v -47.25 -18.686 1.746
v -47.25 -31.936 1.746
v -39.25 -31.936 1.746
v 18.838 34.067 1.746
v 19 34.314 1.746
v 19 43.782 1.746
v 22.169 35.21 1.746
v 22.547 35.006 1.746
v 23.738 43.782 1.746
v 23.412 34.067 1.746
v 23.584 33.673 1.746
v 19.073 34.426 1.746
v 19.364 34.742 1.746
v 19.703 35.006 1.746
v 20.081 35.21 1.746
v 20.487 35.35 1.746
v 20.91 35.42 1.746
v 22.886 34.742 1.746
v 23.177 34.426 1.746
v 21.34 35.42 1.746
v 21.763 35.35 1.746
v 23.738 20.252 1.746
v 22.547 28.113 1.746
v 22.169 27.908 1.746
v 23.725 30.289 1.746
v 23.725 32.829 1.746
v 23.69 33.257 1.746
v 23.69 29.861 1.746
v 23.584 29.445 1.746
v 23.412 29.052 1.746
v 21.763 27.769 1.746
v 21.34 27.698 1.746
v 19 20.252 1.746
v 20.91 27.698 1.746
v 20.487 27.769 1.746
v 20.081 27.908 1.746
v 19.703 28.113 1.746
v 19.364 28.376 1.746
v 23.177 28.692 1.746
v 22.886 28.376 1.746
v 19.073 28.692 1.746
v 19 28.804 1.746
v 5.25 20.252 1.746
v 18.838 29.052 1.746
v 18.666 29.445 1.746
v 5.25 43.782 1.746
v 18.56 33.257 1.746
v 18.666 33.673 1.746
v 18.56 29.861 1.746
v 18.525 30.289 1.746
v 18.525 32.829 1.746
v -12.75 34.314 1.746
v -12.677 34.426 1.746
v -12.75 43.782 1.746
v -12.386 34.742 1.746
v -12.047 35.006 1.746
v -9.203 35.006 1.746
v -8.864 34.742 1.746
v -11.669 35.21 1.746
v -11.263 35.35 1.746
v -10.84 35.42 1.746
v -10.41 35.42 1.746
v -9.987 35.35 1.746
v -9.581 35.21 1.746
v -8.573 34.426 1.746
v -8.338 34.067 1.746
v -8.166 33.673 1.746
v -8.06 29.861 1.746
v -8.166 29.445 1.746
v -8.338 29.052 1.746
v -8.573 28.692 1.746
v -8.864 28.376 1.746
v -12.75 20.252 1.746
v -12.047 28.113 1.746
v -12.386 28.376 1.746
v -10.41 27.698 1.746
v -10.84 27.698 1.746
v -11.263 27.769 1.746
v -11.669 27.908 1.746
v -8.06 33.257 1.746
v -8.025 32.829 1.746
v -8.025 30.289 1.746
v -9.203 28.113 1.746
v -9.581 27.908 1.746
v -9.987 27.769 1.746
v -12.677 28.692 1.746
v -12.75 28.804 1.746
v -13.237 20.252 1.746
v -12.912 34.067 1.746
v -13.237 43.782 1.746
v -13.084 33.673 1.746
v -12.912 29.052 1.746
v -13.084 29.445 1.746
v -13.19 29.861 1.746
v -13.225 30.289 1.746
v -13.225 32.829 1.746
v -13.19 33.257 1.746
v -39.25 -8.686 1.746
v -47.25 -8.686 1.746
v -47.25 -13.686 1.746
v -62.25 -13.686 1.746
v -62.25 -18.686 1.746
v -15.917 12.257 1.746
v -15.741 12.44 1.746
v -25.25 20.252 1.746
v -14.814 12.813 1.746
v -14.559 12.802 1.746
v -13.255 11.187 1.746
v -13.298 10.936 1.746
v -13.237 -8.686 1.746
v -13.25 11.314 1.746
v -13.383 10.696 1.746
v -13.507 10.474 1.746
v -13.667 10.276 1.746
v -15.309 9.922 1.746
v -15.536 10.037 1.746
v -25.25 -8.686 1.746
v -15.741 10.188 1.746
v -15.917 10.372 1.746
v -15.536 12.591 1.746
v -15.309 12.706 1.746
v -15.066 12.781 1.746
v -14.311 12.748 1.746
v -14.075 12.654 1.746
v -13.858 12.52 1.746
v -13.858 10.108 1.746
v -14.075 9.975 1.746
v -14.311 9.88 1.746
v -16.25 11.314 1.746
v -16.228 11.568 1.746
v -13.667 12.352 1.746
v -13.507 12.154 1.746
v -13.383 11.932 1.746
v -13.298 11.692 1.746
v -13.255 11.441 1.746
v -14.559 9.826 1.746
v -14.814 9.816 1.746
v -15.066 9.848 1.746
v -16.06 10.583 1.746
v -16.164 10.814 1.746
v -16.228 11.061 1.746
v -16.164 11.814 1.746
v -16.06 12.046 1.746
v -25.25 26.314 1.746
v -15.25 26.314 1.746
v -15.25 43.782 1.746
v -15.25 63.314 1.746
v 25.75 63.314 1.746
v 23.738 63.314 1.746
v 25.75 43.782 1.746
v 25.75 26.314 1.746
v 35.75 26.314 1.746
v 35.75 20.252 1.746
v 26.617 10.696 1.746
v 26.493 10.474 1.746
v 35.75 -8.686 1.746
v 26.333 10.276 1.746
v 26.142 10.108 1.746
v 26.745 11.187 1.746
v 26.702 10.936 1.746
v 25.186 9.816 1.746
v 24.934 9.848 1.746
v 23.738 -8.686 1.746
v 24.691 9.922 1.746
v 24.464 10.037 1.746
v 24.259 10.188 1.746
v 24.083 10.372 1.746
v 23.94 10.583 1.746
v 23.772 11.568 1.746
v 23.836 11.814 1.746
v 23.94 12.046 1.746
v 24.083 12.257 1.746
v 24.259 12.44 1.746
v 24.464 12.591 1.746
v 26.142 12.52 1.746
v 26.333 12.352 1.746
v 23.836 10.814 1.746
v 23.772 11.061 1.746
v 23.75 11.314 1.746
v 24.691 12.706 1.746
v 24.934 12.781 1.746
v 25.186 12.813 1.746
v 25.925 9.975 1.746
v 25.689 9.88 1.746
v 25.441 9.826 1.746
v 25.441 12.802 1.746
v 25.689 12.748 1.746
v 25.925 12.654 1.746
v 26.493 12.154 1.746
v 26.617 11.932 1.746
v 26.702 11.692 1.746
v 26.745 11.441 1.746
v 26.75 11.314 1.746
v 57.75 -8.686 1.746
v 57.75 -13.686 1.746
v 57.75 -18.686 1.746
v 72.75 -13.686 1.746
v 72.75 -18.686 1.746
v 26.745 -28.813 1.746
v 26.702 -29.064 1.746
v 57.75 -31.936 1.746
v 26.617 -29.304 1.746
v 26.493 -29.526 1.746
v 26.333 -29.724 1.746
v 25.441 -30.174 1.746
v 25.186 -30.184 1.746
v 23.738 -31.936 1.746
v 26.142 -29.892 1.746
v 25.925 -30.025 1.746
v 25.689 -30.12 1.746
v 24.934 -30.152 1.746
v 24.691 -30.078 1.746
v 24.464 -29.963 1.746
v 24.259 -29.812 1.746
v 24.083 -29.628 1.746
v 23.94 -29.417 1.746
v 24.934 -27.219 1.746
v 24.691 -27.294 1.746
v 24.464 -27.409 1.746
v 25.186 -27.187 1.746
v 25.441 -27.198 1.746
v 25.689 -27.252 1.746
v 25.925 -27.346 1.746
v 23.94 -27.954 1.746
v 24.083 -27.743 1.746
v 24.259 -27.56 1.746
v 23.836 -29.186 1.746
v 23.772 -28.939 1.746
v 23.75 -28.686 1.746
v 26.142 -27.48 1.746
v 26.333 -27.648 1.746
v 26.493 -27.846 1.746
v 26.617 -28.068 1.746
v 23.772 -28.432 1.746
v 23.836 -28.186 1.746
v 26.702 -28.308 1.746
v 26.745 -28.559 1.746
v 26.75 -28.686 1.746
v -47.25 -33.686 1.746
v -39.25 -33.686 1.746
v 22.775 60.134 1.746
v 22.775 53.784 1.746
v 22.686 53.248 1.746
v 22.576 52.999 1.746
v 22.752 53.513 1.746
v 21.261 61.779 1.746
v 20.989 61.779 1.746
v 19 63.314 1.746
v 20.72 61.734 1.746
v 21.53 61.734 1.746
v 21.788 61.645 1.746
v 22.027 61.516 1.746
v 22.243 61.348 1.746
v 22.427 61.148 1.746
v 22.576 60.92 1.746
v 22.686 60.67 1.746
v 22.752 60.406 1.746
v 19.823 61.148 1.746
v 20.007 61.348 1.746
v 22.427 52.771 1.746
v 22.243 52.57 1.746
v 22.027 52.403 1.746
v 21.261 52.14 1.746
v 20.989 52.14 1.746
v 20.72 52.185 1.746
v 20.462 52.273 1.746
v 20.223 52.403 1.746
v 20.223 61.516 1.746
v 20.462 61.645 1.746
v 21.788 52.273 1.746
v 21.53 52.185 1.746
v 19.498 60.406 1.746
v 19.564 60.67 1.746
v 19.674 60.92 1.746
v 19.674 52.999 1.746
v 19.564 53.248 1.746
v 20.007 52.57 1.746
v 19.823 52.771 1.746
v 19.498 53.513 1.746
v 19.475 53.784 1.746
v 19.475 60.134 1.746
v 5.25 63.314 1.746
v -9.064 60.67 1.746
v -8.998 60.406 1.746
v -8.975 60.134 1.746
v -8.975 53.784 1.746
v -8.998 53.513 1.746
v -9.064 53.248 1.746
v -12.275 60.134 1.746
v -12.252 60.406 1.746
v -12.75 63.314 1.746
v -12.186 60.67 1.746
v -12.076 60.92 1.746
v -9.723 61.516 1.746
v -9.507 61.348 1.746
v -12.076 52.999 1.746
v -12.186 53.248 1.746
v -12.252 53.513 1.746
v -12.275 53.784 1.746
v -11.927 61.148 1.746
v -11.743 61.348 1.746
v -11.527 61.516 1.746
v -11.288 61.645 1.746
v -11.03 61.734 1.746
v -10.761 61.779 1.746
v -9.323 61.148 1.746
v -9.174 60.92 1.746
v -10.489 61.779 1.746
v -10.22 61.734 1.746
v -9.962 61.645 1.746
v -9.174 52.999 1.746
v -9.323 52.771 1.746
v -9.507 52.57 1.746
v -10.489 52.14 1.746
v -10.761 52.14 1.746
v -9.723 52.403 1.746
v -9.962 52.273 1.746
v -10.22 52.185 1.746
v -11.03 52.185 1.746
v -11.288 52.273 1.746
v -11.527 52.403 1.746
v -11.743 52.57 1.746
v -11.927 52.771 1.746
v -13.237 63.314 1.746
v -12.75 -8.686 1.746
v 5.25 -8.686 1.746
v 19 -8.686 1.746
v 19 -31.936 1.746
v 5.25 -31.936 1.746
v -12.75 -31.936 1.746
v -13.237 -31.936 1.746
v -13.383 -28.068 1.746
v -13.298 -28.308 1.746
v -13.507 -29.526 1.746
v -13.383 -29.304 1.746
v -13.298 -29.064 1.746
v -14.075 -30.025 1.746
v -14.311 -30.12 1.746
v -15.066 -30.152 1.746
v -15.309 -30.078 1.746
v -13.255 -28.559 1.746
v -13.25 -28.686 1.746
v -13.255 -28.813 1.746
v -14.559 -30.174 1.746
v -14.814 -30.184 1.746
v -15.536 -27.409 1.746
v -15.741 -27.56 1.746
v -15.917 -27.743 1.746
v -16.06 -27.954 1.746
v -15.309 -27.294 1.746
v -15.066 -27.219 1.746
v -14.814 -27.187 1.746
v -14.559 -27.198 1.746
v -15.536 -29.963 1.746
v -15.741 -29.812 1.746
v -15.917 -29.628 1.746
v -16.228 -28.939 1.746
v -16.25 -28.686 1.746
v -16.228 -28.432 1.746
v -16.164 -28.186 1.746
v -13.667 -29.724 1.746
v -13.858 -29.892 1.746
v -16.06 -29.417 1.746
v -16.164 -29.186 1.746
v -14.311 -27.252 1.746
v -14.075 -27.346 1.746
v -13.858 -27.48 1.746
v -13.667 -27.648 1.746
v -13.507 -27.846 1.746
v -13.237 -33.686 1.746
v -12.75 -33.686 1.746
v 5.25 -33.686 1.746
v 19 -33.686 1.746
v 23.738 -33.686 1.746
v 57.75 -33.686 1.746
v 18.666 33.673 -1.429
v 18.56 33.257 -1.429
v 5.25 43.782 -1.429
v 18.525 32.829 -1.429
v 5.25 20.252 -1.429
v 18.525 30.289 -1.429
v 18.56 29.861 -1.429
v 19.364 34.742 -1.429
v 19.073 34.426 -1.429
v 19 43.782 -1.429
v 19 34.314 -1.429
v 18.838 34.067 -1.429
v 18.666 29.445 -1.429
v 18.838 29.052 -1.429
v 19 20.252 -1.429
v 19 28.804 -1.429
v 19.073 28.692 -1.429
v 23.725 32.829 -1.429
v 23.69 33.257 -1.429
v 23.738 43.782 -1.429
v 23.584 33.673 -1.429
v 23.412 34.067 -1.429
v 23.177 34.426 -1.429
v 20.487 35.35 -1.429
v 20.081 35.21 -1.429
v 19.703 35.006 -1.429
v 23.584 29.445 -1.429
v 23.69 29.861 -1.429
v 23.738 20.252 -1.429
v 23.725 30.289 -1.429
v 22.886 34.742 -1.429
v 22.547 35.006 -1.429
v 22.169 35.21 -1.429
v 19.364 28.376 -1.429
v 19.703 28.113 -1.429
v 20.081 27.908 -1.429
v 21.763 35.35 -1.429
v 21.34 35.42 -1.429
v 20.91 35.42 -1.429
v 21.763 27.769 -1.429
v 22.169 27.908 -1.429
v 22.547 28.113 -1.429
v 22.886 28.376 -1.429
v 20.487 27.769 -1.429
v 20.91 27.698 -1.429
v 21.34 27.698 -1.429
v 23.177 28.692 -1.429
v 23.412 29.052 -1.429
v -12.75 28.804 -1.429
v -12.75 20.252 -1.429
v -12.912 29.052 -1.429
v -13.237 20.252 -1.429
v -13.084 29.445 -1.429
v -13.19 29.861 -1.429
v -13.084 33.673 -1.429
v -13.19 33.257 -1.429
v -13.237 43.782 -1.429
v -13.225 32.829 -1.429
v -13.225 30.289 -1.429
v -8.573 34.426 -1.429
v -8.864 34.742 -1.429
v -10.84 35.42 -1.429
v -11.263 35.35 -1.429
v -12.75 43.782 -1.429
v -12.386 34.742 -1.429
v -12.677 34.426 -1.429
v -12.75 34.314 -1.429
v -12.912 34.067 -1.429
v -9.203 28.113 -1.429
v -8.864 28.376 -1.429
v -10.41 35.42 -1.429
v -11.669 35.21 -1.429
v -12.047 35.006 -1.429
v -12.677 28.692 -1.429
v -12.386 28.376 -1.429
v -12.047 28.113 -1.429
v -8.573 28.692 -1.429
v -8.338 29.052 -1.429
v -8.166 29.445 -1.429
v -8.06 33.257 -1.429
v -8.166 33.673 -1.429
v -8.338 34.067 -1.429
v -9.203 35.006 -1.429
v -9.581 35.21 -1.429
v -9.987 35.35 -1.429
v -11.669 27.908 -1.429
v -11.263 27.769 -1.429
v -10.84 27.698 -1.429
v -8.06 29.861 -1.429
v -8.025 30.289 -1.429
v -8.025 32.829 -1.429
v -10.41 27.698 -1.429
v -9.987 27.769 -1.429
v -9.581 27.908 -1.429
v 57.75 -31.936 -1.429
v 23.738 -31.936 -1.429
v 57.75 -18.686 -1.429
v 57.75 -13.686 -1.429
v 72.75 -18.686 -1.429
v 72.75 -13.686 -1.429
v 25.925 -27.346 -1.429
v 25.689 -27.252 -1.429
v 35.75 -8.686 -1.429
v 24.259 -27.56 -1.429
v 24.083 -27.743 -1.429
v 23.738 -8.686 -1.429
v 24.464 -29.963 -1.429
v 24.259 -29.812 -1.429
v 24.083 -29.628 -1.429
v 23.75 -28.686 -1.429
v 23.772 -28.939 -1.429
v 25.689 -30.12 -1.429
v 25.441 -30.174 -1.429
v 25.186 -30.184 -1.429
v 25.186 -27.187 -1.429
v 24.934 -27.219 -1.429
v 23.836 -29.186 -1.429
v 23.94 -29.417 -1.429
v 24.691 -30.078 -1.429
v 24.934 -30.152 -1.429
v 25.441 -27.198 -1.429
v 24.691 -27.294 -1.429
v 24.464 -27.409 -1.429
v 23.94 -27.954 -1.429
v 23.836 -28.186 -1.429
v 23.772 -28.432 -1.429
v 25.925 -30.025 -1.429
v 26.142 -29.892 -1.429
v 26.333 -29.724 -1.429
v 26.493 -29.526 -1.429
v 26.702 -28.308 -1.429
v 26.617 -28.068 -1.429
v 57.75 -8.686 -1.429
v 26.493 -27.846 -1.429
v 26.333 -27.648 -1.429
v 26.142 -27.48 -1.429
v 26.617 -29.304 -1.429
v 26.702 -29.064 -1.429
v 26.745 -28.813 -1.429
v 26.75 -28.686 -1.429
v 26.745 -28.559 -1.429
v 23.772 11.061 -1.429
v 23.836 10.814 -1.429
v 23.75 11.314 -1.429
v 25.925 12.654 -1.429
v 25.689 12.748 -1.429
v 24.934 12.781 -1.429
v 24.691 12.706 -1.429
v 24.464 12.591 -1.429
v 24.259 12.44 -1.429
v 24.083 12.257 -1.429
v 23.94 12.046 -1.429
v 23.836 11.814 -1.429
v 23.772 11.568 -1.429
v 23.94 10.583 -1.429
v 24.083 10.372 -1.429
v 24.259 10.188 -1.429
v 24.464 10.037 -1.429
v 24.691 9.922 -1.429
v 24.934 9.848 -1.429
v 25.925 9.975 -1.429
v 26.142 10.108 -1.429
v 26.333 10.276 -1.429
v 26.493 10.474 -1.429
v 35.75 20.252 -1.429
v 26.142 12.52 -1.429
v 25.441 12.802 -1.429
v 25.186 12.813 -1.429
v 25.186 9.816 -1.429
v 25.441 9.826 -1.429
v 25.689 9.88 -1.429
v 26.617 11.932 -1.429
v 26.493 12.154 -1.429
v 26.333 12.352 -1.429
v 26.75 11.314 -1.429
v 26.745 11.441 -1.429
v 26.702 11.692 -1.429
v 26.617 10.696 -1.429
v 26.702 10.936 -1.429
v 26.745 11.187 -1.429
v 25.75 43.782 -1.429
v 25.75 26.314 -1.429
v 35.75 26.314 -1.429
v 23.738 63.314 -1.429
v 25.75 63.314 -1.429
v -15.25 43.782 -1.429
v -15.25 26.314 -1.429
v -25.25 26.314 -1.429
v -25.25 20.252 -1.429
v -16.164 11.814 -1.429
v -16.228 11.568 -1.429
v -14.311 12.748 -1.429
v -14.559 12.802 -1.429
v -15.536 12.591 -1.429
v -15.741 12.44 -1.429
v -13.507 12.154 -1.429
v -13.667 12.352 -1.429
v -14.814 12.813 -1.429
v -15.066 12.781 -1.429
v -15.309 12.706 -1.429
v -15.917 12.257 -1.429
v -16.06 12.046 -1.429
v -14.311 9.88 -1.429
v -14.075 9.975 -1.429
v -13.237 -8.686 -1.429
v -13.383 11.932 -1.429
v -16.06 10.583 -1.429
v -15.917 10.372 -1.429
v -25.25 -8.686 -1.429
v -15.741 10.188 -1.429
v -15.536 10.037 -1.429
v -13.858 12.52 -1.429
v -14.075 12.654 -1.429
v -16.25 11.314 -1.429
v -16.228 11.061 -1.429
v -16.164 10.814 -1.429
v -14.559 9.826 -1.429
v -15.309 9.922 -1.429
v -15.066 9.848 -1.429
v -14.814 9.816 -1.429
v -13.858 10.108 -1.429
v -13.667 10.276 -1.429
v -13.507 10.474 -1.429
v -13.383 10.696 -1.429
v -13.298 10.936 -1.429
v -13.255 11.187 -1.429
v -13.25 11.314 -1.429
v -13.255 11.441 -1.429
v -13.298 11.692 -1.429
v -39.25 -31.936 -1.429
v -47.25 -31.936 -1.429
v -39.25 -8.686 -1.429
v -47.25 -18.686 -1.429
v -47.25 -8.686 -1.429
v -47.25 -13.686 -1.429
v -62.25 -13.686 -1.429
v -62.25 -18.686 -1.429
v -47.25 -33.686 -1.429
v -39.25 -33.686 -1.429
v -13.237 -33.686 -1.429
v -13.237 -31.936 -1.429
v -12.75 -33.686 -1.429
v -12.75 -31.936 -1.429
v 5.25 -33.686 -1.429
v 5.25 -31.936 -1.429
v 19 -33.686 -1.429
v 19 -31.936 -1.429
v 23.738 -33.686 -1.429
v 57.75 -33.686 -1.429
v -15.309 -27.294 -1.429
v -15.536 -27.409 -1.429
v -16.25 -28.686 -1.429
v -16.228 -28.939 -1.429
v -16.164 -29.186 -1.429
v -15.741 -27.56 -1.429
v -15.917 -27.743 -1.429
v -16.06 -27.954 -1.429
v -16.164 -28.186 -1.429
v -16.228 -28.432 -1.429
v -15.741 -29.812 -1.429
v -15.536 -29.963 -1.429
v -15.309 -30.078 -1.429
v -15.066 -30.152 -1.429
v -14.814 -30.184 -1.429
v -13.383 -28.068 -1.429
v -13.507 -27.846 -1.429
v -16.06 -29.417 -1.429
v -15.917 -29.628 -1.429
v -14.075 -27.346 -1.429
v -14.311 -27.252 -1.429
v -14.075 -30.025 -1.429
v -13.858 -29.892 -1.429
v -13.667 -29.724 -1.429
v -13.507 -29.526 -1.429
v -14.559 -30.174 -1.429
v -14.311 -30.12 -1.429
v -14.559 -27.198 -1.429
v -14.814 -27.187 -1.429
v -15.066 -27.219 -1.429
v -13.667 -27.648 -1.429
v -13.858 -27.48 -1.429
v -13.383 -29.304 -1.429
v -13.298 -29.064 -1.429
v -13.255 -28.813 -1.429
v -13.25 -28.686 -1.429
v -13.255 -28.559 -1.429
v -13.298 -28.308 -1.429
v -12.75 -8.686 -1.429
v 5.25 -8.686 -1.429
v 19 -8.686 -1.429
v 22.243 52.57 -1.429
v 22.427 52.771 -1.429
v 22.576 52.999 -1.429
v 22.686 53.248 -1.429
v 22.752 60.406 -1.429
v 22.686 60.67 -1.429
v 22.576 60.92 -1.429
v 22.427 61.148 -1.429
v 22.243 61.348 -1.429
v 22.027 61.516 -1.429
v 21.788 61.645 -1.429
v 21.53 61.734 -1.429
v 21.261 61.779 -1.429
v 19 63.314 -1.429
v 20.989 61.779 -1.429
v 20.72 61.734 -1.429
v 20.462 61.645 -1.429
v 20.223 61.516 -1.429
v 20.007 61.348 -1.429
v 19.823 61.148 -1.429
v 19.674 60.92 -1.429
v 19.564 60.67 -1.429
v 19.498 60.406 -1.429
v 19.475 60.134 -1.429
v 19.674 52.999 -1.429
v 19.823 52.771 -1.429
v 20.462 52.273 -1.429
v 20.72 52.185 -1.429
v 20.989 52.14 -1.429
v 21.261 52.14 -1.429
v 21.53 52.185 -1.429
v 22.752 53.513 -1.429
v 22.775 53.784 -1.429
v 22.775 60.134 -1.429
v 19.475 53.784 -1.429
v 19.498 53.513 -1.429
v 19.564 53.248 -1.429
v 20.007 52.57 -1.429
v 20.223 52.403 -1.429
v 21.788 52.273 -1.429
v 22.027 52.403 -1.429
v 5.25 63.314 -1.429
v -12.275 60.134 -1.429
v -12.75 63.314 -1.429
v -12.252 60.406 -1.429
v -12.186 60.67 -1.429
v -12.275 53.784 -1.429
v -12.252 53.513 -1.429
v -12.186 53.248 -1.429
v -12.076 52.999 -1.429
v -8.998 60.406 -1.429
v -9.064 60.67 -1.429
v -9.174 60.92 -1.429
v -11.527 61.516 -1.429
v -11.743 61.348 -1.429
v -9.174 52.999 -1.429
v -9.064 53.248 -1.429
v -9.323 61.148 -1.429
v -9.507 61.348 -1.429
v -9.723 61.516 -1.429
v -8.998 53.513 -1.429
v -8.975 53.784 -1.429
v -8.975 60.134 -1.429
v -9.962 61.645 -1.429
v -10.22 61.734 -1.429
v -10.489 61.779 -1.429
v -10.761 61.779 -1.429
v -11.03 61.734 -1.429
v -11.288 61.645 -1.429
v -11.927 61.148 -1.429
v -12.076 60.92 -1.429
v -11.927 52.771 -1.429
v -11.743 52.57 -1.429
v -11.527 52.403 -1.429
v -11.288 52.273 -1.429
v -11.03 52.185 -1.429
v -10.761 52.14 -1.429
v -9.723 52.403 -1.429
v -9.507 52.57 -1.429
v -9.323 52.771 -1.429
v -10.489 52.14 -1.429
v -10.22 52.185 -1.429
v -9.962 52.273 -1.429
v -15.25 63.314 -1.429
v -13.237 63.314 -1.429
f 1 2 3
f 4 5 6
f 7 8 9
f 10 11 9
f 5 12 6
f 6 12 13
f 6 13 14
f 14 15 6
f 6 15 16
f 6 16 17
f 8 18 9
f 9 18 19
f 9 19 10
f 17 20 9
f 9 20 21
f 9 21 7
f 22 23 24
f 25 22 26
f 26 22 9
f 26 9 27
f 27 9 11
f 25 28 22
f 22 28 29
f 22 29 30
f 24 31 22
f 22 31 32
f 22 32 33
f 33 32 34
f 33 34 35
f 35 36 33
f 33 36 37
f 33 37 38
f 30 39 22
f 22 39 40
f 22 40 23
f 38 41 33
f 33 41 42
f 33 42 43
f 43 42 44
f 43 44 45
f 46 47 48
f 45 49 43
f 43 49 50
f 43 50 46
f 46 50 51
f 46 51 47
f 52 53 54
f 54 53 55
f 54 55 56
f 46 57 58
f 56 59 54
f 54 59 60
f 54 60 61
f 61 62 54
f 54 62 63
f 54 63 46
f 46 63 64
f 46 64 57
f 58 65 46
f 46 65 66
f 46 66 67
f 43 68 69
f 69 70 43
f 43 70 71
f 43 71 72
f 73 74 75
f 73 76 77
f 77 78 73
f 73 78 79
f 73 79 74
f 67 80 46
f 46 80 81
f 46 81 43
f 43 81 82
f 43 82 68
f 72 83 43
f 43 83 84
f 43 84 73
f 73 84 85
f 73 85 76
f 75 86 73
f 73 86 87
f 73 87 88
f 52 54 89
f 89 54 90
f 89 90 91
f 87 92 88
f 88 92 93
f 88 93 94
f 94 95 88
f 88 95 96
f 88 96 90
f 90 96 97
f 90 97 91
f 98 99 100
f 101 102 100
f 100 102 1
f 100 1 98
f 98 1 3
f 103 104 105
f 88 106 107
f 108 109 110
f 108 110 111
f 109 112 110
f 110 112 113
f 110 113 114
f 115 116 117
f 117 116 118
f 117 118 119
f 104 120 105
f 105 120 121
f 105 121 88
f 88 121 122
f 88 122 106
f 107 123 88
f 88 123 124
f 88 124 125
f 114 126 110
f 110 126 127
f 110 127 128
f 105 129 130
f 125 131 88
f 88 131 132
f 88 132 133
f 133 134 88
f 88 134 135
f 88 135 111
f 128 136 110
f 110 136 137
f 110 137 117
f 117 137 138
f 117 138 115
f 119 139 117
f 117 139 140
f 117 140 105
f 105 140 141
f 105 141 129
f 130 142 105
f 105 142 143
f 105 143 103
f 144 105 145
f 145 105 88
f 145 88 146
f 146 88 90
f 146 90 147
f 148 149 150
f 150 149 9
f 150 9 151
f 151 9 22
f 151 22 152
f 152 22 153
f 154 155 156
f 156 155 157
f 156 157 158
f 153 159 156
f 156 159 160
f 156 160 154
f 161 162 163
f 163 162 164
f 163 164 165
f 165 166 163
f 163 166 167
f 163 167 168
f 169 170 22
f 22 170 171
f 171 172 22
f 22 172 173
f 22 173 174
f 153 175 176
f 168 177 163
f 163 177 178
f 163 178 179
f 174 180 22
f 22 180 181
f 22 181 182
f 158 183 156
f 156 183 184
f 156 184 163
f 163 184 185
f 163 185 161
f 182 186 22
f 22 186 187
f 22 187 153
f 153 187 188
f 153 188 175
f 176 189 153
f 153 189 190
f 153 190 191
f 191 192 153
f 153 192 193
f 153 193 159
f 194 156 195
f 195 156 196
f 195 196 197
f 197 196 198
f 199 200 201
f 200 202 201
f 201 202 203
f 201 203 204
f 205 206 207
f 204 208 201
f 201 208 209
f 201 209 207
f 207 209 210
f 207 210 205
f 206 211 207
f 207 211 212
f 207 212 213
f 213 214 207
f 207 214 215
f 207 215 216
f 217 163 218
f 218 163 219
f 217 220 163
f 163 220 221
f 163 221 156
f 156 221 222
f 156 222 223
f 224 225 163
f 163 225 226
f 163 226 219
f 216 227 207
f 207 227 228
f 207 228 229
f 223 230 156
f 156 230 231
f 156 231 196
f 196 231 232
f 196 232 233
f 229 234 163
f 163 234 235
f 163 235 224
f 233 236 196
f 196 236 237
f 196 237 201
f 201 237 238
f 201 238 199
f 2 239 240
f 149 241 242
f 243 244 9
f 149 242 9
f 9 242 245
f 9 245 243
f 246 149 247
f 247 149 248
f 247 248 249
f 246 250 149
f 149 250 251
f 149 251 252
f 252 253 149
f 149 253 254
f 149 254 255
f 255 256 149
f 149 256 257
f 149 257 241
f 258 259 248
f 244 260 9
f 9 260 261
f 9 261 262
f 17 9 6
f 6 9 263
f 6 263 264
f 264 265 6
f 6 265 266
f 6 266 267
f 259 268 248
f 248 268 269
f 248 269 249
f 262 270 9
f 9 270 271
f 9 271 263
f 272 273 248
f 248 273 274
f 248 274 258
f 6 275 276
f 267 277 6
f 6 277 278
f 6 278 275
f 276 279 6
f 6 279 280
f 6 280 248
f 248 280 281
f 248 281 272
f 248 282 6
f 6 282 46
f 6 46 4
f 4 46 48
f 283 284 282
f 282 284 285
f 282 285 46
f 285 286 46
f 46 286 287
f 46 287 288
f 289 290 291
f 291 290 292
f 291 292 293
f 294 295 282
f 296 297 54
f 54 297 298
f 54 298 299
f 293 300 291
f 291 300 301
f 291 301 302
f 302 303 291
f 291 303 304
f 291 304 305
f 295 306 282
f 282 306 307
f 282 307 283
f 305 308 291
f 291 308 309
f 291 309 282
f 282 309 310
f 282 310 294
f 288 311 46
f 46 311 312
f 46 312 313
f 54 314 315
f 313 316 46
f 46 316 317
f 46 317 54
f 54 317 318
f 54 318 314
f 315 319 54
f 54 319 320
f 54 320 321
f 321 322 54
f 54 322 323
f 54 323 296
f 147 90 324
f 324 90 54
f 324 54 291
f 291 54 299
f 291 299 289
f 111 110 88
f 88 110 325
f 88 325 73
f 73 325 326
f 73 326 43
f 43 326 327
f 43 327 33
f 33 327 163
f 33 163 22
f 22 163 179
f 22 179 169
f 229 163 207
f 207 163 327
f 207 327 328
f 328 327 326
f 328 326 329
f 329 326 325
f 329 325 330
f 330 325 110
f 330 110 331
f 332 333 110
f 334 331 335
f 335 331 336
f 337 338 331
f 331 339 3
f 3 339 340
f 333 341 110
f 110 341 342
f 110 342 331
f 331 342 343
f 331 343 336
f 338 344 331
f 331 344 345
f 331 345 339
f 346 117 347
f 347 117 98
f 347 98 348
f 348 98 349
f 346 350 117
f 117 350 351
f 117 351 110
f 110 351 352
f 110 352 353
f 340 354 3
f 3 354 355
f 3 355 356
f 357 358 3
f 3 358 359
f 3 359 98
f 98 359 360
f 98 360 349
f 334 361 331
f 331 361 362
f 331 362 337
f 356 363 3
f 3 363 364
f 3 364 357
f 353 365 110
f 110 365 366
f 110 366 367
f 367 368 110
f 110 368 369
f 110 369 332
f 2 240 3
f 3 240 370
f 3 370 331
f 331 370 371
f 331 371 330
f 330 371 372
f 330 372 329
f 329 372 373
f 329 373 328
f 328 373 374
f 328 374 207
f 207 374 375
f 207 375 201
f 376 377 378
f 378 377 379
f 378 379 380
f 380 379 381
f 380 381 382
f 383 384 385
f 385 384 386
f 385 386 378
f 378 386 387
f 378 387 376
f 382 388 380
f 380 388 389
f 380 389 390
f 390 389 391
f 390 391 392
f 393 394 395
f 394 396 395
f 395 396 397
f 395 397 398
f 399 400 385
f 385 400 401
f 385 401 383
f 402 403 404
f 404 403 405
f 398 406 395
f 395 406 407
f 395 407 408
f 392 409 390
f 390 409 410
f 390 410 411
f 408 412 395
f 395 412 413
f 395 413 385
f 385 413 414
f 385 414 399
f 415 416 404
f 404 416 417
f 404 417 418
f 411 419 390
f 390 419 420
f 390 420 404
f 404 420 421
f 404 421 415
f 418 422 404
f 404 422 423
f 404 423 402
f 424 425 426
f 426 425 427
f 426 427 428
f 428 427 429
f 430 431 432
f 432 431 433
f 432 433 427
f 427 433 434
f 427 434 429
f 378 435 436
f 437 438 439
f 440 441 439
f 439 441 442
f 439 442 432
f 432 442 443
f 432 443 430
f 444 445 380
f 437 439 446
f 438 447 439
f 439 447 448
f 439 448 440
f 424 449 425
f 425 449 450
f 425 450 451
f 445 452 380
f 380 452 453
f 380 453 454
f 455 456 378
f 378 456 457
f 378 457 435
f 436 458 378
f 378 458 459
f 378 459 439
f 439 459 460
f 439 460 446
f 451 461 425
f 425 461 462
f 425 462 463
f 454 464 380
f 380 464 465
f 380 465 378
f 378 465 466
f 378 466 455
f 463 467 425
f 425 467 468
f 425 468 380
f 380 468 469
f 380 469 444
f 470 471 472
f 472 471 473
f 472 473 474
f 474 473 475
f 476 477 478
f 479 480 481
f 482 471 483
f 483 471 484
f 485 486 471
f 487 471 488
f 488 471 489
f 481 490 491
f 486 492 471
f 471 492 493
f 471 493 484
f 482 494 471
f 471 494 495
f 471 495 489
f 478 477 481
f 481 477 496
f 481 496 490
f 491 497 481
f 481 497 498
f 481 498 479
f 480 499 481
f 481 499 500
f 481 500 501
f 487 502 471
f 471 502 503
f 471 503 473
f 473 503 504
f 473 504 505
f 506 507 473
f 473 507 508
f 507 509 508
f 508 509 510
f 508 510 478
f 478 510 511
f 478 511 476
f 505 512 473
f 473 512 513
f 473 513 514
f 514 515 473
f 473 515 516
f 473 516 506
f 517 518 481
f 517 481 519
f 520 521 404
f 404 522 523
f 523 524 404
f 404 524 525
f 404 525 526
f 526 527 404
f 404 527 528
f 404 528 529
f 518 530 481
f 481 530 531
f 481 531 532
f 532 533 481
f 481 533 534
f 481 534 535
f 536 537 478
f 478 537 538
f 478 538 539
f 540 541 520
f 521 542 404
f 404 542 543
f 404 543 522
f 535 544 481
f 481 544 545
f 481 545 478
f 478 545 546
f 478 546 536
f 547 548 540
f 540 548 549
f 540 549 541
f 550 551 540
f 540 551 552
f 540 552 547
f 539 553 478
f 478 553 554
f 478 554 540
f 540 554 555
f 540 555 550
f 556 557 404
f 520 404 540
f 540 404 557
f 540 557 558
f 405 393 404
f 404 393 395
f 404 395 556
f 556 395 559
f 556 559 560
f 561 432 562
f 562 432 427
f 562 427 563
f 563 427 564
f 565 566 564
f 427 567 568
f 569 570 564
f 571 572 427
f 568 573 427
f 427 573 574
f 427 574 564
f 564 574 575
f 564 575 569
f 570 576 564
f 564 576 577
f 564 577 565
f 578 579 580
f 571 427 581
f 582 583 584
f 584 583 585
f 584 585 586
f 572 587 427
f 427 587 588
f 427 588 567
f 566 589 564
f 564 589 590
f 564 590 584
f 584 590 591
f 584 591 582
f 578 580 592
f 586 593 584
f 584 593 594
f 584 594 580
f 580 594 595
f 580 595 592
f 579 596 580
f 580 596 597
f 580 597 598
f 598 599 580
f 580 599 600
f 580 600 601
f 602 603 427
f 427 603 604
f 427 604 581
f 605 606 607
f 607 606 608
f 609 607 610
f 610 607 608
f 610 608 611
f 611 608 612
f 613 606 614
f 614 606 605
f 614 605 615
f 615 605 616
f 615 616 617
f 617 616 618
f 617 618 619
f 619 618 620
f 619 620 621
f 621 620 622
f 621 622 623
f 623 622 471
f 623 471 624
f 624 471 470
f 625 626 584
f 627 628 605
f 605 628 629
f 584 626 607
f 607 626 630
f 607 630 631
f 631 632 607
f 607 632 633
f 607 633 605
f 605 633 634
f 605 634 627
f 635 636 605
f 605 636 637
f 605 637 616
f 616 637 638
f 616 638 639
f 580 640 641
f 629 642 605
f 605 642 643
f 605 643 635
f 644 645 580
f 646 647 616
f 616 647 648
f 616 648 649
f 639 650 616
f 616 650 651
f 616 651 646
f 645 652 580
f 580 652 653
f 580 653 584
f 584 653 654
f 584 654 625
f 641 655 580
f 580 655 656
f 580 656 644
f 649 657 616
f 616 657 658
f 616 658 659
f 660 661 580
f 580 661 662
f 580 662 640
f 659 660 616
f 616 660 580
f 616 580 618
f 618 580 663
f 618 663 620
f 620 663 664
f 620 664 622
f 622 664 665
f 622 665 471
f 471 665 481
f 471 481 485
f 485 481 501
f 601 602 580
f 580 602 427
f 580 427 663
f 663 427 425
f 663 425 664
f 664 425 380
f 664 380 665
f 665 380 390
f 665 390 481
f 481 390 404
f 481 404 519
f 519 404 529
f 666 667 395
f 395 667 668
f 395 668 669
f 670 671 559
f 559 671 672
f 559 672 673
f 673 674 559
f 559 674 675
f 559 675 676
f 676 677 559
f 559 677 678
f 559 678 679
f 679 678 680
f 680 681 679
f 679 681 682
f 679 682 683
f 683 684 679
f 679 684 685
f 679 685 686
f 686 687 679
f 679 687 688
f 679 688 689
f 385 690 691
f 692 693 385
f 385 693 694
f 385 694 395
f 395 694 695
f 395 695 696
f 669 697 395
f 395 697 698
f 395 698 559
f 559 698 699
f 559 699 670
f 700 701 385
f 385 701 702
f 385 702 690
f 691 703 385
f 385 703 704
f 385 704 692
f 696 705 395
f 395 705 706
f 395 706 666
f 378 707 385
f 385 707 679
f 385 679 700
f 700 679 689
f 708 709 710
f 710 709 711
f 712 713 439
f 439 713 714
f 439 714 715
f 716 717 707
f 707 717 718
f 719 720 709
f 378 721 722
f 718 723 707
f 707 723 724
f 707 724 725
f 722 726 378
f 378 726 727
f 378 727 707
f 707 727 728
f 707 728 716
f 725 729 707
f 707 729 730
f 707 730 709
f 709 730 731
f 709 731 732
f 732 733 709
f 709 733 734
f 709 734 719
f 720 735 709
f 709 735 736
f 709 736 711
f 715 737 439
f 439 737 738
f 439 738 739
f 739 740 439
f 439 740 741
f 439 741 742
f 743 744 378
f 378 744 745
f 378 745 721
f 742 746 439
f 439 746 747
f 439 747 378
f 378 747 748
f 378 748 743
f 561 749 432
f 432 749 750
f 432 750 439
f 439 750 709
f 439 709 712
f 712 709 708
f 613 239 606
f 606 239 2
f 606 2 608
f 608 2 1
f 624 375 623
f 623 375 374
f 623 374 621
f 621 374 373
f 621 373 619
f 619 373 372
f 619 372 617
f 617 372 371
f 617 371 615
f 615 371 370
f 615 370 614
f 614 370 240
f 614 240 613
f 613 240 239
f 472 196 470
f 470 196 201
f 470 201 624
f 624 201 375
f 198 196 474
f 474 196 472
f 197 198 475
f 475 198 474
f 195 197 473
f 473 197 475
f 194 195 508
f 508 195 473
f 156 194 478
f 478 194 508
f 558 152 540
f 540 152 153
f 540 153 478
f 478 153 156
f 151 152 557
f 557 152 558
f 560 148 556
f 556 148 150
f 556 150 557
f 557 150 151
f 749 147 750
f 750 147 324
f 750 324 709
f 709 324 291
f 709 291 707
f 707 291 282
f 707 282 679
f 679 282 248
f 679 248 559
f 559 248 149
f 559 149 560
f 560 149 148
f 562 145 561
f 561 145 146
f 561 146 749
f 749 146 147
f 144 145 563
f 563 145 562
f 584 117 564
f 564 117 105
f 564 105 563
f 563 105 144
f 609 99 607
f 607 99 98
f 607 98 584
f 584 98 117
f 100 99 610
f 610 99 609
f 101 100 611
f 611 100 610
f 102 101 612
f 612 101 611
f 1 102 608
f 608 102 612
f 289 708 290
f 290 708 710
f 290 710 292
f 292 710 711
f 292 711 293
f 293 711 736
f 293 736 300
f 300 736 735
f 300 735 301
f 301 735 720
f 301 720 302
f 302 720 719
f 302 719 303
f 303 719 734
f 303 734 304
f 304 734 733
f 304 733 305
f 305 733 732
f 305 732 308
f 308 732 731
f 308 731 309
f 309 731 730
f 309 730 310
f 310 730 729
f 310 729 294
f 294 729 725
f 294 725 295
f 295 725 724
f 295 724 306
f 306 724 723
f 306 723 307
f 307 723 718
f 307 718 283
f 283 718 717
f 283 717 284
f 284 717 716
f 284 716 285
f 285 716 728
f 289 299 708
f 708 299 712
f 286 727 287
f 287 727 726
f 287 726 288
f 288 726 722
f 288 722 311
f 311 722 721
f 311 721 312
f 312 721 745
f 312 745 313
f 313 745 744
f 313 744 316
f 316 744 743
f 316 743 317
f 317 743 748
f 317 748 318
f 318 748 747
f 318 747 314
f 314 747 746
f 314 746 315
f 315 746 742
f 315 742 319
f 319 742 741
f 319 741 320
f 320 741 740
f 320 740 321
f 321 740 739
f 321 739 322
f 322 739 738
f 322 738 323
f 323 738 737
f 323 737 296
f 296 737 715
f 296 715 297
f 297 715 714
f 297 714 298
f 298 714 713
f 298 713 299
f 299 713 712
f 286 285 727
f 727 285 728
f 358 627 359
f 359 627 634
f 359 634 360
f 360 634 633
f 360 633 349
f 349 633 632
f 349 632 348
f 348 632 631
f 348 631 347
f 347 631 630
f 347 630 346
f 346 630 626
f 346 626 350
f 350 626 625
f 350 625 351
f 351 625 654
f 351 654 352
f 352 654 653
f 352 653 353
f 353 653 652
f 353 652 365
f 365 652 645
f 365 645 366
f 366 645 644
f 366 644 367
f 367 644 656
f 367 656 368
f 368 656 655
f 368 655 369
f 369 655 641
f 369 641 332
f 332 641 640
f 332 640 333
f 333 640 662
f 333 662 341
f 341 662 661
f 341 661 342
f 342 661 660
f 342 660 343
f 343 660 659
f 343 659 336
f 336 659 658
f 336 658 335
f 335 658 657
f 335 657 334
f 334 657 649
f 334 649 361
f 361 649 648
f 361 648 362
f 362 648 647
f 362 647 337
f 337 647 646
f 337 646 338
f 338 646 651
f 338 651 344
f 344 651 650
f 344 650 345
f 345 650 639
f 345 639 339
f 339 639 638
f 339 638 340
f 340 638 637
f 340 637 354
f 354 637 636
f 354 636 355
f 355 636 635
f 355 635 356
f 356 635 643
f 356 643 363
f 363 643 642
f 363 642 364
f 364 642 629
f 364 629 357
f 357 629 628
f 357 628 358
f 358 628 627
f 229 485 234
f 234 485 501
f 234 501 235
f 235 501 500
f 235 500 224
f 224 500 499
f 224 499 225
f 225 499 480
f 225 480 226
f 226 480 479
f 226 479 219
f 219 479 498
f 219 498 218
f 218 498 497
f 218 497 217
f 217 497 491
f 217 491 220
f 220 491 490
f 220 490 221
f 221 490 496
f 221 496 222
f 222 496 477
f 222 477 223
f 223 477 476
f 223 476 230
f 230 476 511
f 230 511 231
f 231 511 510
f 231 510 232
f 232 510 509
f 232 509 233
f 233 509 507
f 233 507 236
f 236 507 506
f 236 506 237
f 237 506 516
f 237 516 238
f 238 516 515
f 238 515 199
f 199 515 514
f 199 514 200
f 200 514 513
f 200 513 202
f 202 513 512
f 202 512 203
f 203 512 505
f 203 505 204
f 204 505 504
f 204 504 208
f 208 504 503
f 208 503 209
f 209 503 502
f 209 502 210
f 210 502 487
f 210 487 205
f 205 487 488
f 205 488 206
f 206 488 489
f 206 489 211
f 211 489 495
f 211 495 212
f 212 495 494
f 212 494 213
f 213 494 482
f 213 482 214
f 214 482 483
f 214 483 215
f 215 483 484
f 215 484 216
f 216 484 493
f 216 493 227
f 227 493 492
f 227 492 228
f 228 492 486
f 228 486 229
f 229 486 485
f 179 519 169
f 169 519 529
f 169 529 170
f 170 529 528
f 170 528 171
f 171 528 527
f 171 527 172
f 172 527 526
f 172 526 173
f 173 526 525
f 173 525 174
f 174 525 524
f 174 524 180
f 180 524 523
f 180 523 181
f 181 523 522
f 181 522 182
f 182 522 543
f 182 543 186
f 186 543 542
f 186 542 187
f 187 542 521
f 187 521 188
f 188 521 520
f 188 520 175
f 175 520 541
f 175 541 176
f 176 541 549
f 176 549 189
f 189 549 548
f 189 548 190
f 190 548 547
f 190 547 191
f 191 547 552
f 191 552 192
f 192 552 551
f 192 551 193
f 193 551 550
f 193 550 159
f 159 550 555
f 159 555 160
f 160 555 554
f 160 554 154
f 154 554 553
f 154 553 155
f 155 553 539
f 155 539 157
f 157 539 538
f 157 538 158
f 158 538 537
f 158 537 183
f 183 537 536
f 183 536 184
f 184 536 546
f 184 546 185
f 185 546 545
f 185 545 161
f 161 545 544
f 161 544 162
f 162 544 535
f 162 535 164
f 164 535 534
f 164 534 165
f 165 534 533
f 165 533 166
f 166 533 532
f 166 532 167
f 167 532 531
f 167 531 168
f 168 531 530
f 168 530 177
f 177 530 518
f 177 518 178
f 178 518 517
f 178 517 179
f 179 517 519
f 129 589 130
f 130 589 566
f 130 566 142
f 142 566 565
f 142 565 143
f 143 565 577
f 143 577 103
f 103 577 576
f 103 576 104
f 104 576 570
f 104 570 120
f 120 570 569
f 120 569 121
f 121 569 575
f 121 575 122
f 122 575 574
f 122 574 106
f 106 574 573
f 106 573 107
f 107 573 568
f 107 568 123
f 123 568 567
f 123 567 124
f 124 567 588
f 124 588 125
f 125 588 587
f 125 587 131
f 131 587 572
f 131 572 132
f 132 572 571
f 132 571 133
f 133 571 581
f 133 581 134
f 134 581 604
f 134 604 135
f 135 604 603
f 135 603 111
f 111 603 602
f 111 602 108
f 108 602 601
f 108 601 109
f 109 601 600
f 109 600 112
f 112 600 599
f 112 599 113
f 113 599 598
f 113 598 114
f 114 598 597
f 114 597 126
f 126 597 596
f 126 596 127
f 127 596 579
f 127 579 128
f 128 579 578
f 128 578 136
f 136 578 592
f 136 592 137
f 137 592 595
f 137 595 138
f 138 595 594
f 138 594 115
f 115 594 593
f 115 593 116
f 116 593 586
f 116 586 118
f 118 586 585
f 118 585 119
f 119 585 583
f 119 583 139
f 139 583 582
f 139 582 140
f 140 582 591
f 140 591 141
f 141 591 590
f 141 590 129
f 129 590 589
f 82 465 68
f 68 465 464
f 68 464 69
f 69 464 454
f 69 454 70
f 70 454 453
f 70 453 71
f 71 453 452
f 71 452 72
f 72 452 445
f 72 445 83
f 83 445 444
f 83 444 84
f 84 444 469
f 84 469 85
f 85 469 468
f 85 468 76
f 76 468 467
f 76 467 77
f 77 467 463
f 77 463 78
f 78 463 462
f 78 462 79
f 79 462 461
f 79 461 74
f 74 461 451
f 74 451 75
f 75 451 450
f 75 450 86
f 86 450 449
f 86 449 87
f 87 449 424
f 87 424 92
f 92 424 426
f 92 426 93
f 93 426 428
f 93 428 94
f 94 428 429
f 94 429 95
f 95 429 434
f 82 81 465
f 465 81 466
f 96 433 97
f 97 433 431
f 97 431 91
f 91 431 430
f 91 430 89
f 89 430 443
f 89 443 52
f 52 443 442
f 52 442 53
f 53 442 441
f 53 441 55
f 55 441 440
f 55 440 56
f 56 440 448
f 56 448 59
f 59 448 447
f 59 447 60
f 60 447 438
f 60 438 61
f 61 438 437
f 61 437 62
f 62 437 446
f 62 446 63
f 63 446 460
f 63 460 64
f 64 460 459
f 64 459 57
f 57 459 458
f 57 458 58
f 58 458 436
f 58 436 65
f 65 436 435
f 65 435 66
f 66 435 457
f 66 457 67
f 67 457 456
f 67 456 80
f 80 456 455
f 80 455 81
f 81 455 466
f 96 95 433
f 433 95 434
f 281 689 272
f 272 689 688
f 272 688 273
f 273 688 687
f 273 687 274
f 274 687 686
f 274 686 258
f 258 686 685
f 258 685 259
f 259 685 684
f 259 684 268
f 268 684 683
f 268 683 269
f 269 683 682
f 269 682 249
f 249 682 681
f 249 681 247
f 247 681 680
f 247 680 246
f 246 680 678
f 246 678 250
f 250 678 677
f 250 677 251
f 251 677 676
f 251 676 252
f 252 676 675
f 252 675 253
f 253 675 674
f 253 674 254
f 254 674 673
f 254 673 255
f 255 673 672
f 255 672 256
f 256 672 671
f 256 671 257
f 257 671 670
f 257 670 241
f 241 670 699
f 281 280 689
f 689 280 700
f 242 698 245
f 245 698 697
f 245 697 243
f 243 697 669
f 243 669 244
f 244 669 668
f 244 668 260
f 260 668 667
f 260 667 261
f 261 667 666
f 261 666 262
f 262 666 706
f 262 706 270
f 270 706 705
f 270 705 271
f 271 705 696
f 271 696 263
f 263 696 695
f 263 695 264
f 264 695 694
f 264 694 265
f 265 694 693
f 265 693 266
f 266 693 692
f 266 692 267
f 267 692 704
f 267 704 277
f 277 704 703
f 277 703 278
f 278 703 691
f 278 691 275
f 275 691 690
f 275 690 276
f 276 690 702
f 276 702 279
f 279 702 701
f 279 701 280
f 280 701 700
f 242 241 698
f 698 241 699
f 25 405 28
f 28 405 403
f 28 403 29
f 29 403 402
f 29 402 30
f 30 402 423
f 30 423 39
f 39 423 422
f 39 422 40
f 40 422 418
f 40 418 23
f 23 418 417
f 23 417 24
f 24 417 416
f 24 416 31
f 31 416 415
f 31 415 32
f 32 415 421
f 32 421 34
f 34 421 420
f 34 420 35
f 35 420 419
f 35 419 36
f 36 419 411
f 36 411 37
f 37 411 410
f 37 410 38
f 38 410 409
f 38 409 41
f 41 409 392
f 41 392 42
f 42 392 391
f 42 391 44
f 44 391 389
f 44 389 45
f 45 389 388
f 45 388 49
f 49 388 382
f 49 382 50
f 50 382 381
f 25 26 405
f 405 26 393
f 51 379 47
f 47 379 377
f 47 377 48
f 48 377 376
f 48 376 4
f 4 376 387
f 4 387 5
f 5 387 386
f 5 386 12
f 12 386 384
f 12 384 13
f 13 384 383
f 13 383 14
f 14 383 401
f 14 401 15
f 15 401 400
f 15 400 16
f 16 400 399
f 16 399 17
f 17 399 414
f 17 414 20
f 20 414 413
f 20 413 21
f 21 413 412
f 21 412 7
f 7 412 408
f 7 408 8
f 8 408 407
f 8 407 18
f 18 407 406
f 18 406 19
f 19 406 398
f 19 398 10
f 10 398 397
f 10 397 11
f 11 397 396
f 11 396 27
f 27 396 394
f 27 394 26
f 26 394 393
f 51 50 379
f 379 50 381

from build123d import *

# Parameters (mm, degrees)
SKETCH1_R           = 0.15
BOSS_EXTRUDE1_DEPTH = 0.3175
SCALE1_SCALE        = 10


with BuildPart() as part:
    # Sketch1 → Boss-Extrude1 (new body)
    with BuildSketch(Plane.XY):
        Polygon((0, 0), (10.5, 0), (10.5, 1.5), (12, 1.5), (12, 2), (10.5, 2), (10.5, 2.5), (8.3, 2.5), (8.3, 6), (7.3, 6), (7.3, 9.7), (3.2, 9.7), (3.2, 6), (2.2, 6), (2.2, 2.5), (0, 2.5), (0, 2), (-1.5, 2), (-1.5, 1.5), (0, 1.5), align=None)
        with Locations((3.25, 0.5)):
            Circle(SKETCH1_R, mode=Mode.SUBTRACT)
        with Locations((7.25, 0.5)):
            Circle(SKETCH1_R, mode=Mode.SUBTRACT)
        with Locations((7.25, 4.5)):
            Circle(SKETCH1_R, mode=Mode.SUBTRACT)
        with Locations((3.25, 4.5)):
            Circle(SKETCH1_R, mode=Mode.SUBTRACT)
        with BuildLine():
            Line((3.8275, 9.382), (3.8275, 8.747))
            ThreePointArc((3.8275, 8.747), (3.6625, 8.582), (3.4975, 8.747))
            Line((3.4975, 8.747), (3.4975, 9.382))
            ThreePointArc((3.4975, 9.382), (3.6625, 9.547), (3.8275, 9.382))
        make_face(mode=Mode.SUBTRACT)
        with BuildLine():
            Line((6.6725, 9.382), (6.6725, 8.747))
            ThreePointArc((6.6725, 8.747), (6.8375, 8.582), (7.0025, 8.747))
            Line((7.0025, 8.747), (7.0025, 9.382))
            ThreePointArc((7.0025, 9.382), (6.8375, 9.547), (6.6725, 9.382))
        make_face(mode=Mode.SUBTRACT)
        with BuildLine():
            Line((3.4025, 6.3975), (3.4025, 6.6515))
            ThreePointArc((3.4025, 6.6515), (3.6625, 6.9115), (3.9225, 6.6515))
            Line((3.9225, 6.6515), (3.9225, 6.3975))
            ThreePointArc((3.9225, 6.3975), (3.6625, 6.1375), (3.4025, 6.3975))
        make_face(mode=Mode.SUBTRACT)
        with BuildLine():
            Line((7.0975, 6.3975), (7.0975, 6.6515))
            ThreePointArc((7.0975, 6.6515), (6.8375, 6.9115), (6.5775, 6.6515))
            Line((6.5775, 6.6515), (6.5775, 6.3975))
            ThreePointArc((6.5775, 6.3975), (6.8375, 6.1375), (7.0975, 6.3975))
        make_face(mode=Mode.SUBTRACT)
    extrude(amount=BOSS_EXTRUDE1_DEPTH)


with BuildPart() as part_1:
    # Scale1: scaled about (5.25, 3.742866372, 0.15875)
    add(part.part.scale(SCALE1_SCALE).moved(Location((-47.25, -33.685797348, -1.42875))))


solid = part_1.part
